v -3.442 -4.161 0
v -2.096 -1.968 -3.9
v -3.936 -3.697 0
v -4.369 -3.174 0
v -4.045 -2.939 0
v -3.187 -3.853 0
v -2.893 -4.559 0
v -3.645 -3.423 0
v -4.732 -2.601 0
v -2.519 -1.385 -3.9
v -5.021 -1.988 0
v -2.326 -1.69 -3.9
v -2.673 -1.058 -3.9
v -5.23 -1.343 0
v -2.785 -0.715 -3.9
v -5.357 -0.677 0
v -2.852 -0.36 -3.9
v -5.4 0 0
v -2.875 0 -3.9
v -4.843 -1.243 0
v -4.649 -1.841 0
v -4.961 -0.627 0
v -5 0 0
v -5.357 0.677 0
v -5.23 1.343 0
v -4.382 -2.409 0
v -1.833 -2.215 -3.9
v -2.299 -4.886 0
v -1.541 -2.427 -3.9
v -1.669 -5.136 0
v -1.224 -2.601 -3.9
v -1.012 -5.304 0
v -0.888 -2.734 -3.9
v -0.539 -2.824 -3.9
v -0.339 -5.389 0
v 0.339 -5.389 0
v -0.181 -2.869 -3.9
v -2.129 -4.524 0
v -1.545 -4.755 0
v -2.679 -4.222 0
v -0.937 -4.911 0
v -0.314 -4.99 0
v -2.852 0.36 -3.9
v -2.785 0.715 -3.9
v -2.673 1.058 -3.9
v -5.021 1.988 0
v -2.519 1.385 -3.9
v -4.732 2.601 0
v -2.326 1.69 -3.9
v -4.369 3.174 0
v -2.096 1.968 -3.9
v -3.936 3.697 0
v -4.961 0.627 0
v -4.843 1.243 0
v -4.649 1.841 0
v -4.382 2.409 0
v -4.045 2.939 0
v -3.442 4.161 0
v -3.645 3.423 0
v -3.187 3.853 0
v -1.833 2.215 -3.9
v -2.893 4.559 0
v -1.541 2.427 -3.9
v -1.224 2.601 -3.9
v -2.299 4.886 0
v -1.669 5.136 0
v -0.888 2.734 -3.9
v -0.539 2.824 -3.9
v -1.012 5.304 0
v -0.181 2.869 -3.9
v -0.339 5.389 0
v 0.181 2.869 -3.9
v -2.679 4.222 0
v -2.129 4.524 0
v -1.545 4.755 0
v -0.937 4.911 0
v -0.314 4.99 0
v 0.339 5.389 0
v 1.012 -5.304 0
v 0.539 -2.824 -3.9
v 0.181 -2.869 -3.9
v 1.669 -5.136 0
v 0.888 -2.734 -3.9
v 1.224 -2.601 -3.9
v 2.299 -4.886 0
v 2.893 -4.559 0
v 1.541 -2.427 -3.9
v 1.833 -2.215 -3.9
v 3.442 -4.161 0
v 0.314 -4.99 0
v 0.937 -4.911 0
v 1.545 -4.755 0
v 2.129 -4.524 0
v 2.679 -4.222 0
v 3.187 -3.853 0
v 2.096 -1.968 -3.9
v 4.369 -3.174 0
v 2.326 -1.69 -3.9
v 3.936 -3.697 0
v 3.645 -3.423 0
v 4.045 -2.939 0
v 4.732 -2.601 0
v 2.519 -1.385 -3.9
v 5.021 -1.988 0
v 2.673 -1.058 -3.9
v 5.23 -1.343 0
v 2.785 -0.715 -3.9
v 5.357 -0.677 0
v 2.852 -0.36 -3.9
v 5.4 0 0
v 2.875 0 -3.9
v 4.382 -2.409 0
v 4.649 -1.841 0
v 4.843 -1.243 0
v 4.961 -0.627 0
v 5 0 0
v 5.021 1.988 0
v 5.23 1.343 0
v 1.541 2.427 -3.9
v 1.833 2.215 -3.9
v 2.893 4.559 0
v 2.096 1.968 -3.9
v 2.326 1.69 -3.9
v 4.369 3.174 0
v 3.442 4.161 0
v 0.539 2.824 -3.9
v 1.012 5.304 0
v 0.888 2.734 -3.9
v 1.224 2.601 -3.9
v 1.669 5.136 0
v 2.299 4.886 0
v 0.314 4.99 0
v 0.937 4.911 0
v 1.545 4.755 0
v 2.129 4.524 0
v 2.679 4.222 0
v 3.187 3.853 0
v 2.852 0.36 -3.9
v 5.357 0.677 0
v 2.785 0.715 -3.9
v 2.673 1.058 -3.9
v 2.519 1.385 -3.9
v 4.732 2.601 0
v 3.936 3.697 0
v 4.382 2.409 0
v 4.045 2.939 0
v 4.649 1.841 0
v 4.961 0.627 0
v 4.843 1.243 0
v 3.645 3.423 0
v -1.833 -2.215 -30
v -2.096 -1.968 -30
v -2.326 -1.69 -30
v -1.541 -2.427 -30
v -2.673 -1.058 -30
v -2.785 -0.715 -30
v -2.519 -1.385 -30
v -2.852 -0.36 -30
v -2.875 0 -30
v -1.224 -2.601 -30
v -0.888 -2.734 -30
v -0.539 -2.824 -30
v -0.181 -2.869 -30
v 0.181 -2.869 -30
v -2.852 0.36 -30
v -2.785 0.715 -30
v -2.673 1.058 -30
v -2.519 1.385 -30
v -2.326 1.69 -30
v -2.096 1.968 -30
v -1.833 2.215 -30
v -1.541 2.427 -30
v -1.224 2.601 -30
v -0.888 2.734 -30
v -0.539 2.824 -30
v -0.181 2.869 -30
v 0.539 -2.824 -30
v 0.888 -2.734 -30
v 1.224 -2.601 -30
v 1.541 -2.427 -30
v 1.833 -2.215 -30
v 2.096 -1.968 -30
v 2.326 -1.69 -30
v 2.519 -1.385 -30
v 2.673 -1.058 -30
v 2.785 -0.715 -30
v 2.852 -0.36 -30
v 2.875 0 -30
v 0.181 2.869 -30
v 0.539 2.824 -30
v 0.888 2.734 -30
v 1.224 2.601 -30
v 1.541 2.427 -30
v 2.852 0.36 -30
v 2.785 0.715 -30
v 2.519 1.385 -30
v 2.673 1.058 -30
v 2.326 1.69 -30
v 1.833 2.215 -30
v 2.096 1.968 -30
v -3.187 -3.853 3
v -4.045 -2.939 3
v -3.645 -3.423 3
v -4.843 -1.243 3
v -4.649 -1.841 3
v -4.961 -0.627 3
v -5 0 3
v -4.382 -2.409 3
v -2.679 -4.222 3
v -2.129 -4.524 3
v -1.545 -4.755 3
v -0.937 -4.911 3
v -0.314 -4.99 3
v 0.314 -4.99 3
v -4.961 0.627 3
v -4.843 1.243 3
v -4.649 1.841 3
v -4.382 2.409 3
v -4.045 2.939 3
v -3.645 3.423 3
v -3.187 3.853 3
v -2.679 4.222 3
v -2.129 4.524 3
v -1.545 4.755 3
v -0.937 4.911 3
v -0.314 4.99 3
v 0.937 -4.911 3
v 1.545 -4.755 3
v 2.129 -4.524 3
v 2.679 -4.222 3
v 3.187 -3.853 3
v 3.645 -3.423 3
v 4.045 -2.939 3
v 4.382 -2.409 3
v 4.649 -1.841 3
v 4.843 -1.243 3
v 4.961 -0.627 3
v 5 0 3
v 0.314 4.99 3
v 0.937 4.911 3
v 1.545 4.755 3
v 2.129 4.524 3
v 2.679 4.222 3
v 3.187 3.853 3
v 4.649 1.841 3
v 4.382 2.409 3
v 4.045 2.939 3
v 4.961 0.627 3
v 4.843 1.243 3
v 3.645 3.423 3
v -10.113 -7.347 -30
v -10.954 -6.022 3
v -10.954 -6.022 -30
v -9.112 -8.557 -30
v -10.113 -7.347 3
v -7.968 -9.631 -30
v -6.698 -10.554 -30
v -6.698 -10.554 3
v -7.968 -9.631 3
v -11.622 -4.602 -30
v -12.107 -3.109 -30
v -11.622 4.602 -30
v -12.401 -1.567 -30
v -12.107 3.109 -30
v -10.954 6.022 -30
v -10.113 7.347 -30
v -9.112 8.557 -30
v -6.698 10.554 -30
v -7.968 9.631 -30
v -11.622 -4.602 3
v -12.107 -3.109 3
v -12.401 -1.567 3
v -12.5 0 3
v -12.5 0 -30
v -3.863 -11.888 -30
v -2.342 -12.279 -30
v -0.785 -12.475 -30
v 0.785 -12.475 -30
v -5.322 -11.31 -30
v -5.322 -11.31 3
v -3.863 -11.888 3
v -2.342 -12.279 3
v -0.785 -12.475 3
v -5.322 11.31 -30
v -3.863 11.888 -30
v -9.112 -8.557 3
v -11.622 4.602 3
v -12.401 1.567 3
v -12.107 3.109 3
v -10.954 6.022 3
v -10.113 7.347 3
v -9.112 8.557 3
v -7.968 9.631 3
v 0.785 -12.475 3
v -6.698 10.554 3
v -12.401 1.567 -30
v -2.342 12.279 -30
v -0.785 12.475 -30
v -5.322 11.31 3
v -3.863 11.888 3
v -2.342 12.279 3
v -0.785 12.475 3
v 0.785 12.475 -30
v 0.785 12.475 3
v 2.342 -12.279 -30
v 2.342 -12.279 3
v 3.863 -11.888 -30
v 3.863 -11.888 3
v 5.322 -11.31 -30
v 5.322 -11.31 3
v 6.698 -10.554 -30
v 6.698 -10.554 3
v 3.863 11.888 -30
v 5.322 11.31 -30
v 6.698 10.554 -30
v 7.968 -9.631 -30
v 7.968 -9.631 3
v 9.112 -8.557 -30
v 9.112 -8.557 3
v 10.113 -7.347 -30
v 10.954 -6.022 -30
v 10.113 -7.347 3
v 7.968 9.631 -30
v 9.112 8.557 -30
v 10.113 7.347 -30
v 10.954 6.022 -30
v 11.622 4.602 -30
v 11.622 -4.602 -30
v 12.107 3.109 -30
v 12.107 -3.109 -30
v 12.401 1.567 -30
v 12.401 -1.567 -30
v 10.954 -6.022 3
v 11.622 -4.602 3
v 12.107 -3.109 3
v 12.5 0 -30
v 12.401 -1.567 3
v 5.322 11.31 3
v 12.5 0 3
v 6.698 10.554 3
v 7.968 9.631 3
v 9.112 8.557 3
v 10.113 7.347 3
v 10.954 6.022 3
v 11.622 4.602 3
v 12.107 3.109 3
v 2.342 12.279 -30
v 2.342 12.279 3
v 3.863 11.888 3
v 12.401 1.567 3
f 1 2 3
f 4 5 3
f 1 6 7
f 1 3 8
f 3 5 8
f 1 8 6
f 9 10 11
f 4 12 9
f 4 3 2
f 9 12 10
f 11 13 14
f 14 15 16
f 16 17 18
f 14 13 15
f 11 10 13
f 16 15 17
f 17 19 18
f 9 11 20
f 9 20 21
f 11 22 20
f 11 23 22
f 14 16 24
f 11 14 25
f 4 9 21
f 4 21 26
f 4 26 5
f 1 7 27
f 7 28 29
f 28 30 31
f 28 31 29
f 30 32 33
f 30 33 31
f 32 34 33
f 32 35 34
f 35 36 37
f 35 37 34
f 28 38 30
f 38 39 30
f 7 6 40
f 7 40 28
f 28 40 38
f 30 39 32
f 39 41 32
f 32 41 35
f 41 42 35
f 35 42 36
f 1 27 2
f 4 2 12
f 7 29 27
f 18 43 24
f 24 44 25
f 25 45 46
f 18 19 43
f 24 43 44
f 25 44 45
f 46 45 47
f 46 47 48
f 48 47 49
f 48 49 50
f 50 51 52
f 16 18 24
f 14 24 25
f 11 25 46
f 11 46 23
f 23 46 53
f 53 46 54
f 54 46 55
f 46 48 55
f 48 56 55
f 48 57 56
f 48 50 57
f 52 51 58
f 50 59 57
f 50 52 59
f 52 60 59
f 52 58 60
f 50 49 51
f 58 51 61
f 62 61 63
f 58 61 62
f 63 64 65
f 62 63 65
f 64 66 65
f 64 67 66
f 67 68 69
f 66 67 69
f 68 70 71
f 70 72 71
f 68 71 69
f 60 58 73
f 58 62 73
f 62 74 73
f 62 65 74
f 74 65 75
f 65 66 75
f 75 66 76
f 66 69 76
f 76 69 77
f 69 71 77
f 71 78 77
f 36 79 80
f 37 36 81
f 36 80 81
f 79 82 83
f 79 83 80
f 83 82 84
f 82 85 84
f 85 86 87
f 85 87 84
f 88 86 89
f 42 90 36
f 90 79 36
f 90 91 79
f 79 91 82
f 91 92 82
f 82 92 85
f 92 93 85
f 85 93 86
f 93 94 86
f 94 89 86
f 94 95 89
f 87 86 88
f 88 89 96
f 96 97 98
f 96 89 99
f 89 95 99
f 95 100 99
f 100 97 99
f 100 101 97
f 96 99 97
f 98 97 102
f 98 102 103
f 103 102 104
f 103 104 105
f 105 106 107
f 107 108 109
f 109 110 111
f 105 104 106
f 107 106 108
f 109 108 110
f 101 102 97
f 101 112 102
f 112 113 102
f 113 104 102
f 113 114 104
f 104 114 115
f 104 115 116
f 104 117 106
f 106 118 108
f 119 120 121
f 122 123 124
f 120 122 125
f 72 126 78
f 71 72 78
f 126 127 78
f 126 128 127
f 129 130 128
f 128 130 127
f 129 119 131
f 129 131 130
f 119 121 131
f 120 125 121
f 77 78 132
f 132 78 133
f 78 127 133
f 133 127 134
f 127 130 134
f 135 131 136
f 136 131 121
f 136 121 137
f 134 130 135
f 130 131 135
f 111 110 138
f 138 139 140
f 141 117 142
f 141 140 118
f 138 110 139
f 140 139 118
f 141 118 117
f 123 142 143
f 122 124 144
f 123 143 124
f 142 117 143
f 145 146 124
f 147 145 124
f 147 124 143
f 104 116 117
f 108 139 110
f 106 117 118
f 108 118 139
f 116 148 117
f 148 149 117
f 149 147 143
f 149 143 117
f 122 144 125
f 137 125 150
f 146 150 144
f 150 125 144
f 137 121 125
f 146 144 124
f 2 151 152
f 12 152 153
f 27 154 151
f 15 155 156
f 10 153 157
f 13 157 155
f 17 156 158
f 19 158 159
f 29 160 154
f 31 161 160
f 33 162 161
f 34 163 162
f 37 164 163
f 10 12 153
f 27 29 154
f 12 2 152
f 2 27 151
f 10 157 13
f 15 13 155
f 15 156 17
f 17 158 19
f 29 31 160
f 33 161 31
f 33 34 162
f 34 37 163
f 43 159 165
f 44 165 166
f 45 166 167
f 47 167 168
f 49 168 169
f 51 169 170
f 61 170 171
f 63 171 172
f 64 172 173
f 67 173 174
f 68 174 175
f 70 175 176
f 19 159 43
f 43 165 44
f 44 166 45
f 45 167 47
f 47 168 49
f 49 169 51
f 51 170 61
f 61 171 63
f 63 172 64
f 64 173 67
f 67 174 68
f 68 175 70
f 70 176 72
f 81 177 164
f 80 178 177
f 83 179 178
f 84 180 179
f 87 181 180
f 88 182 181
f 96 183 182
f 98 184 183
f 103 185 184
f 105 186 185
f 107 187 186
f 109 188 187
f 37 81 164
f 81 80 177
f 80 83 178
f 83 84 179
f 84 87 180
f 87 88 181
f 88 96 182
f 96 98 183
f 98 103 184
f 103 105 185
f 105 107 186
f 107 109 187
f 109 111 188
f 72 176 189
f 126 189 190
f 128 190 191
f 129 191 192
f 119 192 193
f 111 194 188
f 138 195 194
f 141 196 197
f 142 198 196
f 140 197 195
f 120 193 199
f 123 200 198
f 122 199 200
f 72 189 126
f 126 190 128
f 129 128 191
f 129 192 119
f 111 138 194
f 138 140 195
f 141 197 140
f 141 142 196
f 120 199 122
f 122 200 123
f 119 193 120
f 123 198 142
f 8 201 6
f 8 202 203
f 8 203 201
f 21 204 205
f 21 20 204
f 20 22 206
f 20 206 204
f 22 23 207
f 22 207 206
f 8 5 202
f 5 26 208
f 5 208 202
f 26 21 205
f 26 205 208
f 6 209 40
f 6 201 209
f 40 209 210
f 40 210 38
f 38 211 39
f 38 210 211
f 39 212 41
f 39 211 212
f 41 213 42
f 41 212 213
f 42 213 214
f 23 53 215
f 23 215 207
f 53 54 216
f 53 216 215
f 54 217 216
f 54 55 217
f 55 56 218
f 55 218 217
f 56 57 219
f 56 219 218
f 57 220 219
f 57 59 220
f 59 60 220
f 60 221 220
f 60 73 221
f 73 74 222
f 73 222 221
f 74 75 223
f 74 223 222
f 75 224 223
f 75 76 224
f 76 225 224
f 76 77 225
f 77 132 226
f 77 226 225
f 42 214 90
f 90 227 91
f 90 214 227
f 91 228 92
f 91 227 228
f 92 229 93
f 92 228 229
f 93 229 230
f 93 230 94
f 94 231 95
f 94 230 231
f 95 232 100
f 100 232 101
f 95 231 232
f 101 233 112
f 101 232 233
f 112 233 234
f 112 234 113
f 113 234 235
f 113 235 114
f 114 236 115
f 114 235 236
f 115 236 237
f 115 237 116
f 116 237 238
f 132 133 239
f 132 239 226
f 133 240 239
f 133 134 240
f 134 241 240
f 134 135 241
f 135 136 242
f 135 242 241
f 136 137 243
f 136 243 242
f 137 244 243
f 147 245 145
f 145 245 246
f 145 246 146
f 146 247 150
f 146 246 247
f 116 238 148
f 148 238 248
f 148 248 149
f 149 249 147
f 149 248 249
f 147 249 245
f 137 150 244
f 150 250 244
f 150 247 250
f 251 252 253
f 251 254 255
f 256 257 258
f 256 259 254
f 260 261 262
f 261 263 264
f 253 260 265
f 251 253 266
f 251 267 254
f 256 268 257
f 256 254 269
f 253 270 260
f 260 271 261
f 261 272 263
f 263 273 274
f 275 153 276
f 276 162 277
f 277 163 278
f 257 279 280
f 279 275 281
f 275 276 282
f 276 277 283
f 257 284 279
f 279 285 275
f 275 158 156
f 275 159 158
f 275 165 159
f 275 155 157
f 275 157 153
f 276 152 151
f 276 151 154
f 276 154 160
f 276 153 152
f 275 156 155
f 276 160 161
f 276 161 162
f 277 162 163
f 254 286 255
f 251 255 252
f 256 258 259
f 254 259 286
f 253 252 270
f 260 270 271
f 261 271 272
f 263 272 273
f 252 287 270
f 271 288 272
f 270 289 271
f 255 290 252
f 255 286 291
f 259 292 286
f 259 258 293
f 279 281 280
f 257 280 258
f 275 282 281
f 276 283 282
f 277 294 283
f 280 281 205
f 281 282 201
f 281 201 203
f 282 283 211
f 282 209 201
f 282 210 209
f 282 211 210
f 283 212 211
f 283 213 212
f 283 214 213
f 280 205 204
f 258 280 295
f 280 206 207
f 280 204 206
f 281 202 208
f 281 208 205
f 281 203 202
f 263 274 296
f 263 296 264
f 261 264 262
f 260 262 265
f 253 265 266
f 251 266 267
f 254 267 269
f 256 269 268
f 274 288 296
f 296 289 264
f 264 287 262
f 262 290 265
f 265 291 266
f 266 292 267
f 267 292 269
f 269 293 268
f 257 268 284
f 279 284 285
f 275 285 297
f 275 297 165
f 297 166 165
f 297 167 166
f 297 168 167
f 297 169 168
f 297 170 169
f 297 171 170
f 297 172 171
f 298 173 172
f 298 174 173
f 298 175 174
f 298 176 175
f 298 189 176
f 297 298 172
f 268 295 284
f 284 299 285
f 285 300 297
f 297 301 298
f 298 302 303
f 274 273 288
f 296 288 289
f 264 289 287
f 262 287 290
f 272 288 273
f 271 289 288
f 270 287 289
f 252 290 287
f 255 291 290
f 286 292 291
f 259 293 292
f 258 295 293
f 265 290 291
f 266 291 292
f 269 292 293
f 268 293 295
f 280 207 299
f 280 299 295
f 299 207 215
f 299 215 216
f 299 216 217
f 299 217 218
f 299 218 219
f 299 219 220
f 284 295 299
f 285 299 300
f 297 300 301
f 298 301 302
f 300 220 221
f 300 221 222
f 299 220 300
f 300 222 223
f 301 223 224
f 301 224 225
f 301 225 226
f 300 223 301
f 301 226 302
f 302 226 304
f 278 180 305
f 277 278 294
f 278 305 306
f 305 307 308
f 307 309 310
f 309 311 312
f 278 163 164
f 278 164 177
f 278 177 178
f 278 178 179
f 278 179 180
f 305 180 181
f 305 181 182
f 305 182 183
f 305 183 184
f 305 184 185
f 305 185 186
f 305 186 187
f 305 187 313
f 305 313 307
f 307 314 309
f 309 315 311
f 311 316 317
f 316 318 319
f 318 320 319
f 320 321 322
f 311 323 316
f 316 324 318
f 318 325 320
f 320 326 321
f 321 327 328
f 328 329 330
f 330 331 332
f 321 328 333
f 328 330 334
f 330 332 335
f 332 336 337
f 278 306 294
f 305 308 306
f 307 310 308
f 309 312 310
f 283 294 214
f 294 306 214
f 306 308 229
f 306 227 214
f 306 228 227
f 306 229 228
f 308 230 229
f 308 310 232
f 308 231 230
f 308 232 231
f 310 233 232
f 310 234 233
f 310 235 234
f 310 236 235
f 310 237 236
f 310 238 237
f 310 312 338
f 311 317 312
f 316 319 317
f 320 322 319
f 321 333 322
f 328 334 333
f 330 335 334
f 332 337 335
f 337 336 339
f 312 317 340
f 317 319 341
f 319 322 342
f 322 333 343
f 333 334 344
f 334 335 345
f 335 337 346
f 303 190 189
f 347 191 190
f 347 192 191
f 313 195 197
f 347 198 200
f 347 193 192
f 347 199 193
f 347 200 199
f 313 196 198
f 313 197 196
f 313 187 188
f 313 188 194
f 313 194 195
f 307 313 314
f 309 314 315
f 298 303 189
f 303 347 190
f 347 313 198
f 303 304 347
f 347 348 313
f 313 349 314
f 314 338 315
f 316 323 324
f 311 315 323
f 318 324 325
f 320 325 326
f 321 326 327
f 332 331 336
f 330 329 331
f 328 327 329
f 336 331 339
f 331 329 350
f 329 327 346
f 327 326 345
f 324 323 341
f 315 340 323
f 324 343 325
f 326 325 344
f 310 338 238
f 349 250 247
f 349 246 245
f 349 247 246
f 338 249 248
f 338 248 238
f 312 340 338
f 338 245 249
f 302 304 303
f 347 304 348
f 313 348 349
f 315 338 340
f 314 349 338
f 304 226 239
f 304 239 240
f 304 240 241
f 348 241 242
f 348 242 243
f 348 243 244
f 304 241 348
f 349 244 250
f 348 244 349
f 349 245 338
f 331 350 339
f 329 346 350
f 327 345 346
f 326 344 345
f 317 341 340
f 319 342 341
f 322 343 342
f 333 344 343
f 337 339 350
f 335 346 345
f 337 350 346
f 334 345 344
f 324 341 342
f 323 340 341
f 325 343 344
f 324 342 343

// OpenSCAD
$fn = 50;

difference() {
	union() {
		translate(v = [0, 0, -30.0]) {
			cylinder(h = 33, r = 12.5);
		}
	}
	union() {
		translate(v = [0, 0, 0]) {
			rotate(a = [0, 0, 0]) {
				difference() {
					union() {
						translate(v = [0, 0, -33.0]) {
							cylinder(h = 33, r = 2.6);
						}
						translate(v = [0, 0, -3.9]) {
							cylinder(h = 3.9, r1 = 2.875, r2 = 5.4);
						}
						translate(v = [0, 0, -33.0]) {
							cylinder(h = 33, r = 2.875);
						}
						translate(v = [0, 0, -33.0]) {
							cylinder(h = 33, r = 2.6);
						}
					}
					union();
				}
			}
		}
		#cylinder(h = 3, r = 5.0);
	}
}
